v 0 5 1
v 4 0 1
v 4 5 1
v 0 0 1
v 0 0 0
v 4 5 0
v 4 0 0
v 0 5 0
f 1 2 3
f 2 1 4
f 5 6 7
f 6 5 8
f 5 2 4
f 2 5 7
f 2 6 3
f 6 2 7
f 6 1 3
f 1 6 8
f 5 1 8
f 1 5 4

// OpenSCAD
/* Warning, this is a very basic generator with a lot of approximation 
input data : [VQFN, HPB, 4x5x1mm, 28, , B, C04-21564B]
generated by com.zoubworld.electronics.cad.model3d.Basic
Date : Sun Feb 15 10:50:49 CET 2026
*/

//body
color("black")
translate([0,0,0])
cube([4.0,5.0,1.0], center=false);
